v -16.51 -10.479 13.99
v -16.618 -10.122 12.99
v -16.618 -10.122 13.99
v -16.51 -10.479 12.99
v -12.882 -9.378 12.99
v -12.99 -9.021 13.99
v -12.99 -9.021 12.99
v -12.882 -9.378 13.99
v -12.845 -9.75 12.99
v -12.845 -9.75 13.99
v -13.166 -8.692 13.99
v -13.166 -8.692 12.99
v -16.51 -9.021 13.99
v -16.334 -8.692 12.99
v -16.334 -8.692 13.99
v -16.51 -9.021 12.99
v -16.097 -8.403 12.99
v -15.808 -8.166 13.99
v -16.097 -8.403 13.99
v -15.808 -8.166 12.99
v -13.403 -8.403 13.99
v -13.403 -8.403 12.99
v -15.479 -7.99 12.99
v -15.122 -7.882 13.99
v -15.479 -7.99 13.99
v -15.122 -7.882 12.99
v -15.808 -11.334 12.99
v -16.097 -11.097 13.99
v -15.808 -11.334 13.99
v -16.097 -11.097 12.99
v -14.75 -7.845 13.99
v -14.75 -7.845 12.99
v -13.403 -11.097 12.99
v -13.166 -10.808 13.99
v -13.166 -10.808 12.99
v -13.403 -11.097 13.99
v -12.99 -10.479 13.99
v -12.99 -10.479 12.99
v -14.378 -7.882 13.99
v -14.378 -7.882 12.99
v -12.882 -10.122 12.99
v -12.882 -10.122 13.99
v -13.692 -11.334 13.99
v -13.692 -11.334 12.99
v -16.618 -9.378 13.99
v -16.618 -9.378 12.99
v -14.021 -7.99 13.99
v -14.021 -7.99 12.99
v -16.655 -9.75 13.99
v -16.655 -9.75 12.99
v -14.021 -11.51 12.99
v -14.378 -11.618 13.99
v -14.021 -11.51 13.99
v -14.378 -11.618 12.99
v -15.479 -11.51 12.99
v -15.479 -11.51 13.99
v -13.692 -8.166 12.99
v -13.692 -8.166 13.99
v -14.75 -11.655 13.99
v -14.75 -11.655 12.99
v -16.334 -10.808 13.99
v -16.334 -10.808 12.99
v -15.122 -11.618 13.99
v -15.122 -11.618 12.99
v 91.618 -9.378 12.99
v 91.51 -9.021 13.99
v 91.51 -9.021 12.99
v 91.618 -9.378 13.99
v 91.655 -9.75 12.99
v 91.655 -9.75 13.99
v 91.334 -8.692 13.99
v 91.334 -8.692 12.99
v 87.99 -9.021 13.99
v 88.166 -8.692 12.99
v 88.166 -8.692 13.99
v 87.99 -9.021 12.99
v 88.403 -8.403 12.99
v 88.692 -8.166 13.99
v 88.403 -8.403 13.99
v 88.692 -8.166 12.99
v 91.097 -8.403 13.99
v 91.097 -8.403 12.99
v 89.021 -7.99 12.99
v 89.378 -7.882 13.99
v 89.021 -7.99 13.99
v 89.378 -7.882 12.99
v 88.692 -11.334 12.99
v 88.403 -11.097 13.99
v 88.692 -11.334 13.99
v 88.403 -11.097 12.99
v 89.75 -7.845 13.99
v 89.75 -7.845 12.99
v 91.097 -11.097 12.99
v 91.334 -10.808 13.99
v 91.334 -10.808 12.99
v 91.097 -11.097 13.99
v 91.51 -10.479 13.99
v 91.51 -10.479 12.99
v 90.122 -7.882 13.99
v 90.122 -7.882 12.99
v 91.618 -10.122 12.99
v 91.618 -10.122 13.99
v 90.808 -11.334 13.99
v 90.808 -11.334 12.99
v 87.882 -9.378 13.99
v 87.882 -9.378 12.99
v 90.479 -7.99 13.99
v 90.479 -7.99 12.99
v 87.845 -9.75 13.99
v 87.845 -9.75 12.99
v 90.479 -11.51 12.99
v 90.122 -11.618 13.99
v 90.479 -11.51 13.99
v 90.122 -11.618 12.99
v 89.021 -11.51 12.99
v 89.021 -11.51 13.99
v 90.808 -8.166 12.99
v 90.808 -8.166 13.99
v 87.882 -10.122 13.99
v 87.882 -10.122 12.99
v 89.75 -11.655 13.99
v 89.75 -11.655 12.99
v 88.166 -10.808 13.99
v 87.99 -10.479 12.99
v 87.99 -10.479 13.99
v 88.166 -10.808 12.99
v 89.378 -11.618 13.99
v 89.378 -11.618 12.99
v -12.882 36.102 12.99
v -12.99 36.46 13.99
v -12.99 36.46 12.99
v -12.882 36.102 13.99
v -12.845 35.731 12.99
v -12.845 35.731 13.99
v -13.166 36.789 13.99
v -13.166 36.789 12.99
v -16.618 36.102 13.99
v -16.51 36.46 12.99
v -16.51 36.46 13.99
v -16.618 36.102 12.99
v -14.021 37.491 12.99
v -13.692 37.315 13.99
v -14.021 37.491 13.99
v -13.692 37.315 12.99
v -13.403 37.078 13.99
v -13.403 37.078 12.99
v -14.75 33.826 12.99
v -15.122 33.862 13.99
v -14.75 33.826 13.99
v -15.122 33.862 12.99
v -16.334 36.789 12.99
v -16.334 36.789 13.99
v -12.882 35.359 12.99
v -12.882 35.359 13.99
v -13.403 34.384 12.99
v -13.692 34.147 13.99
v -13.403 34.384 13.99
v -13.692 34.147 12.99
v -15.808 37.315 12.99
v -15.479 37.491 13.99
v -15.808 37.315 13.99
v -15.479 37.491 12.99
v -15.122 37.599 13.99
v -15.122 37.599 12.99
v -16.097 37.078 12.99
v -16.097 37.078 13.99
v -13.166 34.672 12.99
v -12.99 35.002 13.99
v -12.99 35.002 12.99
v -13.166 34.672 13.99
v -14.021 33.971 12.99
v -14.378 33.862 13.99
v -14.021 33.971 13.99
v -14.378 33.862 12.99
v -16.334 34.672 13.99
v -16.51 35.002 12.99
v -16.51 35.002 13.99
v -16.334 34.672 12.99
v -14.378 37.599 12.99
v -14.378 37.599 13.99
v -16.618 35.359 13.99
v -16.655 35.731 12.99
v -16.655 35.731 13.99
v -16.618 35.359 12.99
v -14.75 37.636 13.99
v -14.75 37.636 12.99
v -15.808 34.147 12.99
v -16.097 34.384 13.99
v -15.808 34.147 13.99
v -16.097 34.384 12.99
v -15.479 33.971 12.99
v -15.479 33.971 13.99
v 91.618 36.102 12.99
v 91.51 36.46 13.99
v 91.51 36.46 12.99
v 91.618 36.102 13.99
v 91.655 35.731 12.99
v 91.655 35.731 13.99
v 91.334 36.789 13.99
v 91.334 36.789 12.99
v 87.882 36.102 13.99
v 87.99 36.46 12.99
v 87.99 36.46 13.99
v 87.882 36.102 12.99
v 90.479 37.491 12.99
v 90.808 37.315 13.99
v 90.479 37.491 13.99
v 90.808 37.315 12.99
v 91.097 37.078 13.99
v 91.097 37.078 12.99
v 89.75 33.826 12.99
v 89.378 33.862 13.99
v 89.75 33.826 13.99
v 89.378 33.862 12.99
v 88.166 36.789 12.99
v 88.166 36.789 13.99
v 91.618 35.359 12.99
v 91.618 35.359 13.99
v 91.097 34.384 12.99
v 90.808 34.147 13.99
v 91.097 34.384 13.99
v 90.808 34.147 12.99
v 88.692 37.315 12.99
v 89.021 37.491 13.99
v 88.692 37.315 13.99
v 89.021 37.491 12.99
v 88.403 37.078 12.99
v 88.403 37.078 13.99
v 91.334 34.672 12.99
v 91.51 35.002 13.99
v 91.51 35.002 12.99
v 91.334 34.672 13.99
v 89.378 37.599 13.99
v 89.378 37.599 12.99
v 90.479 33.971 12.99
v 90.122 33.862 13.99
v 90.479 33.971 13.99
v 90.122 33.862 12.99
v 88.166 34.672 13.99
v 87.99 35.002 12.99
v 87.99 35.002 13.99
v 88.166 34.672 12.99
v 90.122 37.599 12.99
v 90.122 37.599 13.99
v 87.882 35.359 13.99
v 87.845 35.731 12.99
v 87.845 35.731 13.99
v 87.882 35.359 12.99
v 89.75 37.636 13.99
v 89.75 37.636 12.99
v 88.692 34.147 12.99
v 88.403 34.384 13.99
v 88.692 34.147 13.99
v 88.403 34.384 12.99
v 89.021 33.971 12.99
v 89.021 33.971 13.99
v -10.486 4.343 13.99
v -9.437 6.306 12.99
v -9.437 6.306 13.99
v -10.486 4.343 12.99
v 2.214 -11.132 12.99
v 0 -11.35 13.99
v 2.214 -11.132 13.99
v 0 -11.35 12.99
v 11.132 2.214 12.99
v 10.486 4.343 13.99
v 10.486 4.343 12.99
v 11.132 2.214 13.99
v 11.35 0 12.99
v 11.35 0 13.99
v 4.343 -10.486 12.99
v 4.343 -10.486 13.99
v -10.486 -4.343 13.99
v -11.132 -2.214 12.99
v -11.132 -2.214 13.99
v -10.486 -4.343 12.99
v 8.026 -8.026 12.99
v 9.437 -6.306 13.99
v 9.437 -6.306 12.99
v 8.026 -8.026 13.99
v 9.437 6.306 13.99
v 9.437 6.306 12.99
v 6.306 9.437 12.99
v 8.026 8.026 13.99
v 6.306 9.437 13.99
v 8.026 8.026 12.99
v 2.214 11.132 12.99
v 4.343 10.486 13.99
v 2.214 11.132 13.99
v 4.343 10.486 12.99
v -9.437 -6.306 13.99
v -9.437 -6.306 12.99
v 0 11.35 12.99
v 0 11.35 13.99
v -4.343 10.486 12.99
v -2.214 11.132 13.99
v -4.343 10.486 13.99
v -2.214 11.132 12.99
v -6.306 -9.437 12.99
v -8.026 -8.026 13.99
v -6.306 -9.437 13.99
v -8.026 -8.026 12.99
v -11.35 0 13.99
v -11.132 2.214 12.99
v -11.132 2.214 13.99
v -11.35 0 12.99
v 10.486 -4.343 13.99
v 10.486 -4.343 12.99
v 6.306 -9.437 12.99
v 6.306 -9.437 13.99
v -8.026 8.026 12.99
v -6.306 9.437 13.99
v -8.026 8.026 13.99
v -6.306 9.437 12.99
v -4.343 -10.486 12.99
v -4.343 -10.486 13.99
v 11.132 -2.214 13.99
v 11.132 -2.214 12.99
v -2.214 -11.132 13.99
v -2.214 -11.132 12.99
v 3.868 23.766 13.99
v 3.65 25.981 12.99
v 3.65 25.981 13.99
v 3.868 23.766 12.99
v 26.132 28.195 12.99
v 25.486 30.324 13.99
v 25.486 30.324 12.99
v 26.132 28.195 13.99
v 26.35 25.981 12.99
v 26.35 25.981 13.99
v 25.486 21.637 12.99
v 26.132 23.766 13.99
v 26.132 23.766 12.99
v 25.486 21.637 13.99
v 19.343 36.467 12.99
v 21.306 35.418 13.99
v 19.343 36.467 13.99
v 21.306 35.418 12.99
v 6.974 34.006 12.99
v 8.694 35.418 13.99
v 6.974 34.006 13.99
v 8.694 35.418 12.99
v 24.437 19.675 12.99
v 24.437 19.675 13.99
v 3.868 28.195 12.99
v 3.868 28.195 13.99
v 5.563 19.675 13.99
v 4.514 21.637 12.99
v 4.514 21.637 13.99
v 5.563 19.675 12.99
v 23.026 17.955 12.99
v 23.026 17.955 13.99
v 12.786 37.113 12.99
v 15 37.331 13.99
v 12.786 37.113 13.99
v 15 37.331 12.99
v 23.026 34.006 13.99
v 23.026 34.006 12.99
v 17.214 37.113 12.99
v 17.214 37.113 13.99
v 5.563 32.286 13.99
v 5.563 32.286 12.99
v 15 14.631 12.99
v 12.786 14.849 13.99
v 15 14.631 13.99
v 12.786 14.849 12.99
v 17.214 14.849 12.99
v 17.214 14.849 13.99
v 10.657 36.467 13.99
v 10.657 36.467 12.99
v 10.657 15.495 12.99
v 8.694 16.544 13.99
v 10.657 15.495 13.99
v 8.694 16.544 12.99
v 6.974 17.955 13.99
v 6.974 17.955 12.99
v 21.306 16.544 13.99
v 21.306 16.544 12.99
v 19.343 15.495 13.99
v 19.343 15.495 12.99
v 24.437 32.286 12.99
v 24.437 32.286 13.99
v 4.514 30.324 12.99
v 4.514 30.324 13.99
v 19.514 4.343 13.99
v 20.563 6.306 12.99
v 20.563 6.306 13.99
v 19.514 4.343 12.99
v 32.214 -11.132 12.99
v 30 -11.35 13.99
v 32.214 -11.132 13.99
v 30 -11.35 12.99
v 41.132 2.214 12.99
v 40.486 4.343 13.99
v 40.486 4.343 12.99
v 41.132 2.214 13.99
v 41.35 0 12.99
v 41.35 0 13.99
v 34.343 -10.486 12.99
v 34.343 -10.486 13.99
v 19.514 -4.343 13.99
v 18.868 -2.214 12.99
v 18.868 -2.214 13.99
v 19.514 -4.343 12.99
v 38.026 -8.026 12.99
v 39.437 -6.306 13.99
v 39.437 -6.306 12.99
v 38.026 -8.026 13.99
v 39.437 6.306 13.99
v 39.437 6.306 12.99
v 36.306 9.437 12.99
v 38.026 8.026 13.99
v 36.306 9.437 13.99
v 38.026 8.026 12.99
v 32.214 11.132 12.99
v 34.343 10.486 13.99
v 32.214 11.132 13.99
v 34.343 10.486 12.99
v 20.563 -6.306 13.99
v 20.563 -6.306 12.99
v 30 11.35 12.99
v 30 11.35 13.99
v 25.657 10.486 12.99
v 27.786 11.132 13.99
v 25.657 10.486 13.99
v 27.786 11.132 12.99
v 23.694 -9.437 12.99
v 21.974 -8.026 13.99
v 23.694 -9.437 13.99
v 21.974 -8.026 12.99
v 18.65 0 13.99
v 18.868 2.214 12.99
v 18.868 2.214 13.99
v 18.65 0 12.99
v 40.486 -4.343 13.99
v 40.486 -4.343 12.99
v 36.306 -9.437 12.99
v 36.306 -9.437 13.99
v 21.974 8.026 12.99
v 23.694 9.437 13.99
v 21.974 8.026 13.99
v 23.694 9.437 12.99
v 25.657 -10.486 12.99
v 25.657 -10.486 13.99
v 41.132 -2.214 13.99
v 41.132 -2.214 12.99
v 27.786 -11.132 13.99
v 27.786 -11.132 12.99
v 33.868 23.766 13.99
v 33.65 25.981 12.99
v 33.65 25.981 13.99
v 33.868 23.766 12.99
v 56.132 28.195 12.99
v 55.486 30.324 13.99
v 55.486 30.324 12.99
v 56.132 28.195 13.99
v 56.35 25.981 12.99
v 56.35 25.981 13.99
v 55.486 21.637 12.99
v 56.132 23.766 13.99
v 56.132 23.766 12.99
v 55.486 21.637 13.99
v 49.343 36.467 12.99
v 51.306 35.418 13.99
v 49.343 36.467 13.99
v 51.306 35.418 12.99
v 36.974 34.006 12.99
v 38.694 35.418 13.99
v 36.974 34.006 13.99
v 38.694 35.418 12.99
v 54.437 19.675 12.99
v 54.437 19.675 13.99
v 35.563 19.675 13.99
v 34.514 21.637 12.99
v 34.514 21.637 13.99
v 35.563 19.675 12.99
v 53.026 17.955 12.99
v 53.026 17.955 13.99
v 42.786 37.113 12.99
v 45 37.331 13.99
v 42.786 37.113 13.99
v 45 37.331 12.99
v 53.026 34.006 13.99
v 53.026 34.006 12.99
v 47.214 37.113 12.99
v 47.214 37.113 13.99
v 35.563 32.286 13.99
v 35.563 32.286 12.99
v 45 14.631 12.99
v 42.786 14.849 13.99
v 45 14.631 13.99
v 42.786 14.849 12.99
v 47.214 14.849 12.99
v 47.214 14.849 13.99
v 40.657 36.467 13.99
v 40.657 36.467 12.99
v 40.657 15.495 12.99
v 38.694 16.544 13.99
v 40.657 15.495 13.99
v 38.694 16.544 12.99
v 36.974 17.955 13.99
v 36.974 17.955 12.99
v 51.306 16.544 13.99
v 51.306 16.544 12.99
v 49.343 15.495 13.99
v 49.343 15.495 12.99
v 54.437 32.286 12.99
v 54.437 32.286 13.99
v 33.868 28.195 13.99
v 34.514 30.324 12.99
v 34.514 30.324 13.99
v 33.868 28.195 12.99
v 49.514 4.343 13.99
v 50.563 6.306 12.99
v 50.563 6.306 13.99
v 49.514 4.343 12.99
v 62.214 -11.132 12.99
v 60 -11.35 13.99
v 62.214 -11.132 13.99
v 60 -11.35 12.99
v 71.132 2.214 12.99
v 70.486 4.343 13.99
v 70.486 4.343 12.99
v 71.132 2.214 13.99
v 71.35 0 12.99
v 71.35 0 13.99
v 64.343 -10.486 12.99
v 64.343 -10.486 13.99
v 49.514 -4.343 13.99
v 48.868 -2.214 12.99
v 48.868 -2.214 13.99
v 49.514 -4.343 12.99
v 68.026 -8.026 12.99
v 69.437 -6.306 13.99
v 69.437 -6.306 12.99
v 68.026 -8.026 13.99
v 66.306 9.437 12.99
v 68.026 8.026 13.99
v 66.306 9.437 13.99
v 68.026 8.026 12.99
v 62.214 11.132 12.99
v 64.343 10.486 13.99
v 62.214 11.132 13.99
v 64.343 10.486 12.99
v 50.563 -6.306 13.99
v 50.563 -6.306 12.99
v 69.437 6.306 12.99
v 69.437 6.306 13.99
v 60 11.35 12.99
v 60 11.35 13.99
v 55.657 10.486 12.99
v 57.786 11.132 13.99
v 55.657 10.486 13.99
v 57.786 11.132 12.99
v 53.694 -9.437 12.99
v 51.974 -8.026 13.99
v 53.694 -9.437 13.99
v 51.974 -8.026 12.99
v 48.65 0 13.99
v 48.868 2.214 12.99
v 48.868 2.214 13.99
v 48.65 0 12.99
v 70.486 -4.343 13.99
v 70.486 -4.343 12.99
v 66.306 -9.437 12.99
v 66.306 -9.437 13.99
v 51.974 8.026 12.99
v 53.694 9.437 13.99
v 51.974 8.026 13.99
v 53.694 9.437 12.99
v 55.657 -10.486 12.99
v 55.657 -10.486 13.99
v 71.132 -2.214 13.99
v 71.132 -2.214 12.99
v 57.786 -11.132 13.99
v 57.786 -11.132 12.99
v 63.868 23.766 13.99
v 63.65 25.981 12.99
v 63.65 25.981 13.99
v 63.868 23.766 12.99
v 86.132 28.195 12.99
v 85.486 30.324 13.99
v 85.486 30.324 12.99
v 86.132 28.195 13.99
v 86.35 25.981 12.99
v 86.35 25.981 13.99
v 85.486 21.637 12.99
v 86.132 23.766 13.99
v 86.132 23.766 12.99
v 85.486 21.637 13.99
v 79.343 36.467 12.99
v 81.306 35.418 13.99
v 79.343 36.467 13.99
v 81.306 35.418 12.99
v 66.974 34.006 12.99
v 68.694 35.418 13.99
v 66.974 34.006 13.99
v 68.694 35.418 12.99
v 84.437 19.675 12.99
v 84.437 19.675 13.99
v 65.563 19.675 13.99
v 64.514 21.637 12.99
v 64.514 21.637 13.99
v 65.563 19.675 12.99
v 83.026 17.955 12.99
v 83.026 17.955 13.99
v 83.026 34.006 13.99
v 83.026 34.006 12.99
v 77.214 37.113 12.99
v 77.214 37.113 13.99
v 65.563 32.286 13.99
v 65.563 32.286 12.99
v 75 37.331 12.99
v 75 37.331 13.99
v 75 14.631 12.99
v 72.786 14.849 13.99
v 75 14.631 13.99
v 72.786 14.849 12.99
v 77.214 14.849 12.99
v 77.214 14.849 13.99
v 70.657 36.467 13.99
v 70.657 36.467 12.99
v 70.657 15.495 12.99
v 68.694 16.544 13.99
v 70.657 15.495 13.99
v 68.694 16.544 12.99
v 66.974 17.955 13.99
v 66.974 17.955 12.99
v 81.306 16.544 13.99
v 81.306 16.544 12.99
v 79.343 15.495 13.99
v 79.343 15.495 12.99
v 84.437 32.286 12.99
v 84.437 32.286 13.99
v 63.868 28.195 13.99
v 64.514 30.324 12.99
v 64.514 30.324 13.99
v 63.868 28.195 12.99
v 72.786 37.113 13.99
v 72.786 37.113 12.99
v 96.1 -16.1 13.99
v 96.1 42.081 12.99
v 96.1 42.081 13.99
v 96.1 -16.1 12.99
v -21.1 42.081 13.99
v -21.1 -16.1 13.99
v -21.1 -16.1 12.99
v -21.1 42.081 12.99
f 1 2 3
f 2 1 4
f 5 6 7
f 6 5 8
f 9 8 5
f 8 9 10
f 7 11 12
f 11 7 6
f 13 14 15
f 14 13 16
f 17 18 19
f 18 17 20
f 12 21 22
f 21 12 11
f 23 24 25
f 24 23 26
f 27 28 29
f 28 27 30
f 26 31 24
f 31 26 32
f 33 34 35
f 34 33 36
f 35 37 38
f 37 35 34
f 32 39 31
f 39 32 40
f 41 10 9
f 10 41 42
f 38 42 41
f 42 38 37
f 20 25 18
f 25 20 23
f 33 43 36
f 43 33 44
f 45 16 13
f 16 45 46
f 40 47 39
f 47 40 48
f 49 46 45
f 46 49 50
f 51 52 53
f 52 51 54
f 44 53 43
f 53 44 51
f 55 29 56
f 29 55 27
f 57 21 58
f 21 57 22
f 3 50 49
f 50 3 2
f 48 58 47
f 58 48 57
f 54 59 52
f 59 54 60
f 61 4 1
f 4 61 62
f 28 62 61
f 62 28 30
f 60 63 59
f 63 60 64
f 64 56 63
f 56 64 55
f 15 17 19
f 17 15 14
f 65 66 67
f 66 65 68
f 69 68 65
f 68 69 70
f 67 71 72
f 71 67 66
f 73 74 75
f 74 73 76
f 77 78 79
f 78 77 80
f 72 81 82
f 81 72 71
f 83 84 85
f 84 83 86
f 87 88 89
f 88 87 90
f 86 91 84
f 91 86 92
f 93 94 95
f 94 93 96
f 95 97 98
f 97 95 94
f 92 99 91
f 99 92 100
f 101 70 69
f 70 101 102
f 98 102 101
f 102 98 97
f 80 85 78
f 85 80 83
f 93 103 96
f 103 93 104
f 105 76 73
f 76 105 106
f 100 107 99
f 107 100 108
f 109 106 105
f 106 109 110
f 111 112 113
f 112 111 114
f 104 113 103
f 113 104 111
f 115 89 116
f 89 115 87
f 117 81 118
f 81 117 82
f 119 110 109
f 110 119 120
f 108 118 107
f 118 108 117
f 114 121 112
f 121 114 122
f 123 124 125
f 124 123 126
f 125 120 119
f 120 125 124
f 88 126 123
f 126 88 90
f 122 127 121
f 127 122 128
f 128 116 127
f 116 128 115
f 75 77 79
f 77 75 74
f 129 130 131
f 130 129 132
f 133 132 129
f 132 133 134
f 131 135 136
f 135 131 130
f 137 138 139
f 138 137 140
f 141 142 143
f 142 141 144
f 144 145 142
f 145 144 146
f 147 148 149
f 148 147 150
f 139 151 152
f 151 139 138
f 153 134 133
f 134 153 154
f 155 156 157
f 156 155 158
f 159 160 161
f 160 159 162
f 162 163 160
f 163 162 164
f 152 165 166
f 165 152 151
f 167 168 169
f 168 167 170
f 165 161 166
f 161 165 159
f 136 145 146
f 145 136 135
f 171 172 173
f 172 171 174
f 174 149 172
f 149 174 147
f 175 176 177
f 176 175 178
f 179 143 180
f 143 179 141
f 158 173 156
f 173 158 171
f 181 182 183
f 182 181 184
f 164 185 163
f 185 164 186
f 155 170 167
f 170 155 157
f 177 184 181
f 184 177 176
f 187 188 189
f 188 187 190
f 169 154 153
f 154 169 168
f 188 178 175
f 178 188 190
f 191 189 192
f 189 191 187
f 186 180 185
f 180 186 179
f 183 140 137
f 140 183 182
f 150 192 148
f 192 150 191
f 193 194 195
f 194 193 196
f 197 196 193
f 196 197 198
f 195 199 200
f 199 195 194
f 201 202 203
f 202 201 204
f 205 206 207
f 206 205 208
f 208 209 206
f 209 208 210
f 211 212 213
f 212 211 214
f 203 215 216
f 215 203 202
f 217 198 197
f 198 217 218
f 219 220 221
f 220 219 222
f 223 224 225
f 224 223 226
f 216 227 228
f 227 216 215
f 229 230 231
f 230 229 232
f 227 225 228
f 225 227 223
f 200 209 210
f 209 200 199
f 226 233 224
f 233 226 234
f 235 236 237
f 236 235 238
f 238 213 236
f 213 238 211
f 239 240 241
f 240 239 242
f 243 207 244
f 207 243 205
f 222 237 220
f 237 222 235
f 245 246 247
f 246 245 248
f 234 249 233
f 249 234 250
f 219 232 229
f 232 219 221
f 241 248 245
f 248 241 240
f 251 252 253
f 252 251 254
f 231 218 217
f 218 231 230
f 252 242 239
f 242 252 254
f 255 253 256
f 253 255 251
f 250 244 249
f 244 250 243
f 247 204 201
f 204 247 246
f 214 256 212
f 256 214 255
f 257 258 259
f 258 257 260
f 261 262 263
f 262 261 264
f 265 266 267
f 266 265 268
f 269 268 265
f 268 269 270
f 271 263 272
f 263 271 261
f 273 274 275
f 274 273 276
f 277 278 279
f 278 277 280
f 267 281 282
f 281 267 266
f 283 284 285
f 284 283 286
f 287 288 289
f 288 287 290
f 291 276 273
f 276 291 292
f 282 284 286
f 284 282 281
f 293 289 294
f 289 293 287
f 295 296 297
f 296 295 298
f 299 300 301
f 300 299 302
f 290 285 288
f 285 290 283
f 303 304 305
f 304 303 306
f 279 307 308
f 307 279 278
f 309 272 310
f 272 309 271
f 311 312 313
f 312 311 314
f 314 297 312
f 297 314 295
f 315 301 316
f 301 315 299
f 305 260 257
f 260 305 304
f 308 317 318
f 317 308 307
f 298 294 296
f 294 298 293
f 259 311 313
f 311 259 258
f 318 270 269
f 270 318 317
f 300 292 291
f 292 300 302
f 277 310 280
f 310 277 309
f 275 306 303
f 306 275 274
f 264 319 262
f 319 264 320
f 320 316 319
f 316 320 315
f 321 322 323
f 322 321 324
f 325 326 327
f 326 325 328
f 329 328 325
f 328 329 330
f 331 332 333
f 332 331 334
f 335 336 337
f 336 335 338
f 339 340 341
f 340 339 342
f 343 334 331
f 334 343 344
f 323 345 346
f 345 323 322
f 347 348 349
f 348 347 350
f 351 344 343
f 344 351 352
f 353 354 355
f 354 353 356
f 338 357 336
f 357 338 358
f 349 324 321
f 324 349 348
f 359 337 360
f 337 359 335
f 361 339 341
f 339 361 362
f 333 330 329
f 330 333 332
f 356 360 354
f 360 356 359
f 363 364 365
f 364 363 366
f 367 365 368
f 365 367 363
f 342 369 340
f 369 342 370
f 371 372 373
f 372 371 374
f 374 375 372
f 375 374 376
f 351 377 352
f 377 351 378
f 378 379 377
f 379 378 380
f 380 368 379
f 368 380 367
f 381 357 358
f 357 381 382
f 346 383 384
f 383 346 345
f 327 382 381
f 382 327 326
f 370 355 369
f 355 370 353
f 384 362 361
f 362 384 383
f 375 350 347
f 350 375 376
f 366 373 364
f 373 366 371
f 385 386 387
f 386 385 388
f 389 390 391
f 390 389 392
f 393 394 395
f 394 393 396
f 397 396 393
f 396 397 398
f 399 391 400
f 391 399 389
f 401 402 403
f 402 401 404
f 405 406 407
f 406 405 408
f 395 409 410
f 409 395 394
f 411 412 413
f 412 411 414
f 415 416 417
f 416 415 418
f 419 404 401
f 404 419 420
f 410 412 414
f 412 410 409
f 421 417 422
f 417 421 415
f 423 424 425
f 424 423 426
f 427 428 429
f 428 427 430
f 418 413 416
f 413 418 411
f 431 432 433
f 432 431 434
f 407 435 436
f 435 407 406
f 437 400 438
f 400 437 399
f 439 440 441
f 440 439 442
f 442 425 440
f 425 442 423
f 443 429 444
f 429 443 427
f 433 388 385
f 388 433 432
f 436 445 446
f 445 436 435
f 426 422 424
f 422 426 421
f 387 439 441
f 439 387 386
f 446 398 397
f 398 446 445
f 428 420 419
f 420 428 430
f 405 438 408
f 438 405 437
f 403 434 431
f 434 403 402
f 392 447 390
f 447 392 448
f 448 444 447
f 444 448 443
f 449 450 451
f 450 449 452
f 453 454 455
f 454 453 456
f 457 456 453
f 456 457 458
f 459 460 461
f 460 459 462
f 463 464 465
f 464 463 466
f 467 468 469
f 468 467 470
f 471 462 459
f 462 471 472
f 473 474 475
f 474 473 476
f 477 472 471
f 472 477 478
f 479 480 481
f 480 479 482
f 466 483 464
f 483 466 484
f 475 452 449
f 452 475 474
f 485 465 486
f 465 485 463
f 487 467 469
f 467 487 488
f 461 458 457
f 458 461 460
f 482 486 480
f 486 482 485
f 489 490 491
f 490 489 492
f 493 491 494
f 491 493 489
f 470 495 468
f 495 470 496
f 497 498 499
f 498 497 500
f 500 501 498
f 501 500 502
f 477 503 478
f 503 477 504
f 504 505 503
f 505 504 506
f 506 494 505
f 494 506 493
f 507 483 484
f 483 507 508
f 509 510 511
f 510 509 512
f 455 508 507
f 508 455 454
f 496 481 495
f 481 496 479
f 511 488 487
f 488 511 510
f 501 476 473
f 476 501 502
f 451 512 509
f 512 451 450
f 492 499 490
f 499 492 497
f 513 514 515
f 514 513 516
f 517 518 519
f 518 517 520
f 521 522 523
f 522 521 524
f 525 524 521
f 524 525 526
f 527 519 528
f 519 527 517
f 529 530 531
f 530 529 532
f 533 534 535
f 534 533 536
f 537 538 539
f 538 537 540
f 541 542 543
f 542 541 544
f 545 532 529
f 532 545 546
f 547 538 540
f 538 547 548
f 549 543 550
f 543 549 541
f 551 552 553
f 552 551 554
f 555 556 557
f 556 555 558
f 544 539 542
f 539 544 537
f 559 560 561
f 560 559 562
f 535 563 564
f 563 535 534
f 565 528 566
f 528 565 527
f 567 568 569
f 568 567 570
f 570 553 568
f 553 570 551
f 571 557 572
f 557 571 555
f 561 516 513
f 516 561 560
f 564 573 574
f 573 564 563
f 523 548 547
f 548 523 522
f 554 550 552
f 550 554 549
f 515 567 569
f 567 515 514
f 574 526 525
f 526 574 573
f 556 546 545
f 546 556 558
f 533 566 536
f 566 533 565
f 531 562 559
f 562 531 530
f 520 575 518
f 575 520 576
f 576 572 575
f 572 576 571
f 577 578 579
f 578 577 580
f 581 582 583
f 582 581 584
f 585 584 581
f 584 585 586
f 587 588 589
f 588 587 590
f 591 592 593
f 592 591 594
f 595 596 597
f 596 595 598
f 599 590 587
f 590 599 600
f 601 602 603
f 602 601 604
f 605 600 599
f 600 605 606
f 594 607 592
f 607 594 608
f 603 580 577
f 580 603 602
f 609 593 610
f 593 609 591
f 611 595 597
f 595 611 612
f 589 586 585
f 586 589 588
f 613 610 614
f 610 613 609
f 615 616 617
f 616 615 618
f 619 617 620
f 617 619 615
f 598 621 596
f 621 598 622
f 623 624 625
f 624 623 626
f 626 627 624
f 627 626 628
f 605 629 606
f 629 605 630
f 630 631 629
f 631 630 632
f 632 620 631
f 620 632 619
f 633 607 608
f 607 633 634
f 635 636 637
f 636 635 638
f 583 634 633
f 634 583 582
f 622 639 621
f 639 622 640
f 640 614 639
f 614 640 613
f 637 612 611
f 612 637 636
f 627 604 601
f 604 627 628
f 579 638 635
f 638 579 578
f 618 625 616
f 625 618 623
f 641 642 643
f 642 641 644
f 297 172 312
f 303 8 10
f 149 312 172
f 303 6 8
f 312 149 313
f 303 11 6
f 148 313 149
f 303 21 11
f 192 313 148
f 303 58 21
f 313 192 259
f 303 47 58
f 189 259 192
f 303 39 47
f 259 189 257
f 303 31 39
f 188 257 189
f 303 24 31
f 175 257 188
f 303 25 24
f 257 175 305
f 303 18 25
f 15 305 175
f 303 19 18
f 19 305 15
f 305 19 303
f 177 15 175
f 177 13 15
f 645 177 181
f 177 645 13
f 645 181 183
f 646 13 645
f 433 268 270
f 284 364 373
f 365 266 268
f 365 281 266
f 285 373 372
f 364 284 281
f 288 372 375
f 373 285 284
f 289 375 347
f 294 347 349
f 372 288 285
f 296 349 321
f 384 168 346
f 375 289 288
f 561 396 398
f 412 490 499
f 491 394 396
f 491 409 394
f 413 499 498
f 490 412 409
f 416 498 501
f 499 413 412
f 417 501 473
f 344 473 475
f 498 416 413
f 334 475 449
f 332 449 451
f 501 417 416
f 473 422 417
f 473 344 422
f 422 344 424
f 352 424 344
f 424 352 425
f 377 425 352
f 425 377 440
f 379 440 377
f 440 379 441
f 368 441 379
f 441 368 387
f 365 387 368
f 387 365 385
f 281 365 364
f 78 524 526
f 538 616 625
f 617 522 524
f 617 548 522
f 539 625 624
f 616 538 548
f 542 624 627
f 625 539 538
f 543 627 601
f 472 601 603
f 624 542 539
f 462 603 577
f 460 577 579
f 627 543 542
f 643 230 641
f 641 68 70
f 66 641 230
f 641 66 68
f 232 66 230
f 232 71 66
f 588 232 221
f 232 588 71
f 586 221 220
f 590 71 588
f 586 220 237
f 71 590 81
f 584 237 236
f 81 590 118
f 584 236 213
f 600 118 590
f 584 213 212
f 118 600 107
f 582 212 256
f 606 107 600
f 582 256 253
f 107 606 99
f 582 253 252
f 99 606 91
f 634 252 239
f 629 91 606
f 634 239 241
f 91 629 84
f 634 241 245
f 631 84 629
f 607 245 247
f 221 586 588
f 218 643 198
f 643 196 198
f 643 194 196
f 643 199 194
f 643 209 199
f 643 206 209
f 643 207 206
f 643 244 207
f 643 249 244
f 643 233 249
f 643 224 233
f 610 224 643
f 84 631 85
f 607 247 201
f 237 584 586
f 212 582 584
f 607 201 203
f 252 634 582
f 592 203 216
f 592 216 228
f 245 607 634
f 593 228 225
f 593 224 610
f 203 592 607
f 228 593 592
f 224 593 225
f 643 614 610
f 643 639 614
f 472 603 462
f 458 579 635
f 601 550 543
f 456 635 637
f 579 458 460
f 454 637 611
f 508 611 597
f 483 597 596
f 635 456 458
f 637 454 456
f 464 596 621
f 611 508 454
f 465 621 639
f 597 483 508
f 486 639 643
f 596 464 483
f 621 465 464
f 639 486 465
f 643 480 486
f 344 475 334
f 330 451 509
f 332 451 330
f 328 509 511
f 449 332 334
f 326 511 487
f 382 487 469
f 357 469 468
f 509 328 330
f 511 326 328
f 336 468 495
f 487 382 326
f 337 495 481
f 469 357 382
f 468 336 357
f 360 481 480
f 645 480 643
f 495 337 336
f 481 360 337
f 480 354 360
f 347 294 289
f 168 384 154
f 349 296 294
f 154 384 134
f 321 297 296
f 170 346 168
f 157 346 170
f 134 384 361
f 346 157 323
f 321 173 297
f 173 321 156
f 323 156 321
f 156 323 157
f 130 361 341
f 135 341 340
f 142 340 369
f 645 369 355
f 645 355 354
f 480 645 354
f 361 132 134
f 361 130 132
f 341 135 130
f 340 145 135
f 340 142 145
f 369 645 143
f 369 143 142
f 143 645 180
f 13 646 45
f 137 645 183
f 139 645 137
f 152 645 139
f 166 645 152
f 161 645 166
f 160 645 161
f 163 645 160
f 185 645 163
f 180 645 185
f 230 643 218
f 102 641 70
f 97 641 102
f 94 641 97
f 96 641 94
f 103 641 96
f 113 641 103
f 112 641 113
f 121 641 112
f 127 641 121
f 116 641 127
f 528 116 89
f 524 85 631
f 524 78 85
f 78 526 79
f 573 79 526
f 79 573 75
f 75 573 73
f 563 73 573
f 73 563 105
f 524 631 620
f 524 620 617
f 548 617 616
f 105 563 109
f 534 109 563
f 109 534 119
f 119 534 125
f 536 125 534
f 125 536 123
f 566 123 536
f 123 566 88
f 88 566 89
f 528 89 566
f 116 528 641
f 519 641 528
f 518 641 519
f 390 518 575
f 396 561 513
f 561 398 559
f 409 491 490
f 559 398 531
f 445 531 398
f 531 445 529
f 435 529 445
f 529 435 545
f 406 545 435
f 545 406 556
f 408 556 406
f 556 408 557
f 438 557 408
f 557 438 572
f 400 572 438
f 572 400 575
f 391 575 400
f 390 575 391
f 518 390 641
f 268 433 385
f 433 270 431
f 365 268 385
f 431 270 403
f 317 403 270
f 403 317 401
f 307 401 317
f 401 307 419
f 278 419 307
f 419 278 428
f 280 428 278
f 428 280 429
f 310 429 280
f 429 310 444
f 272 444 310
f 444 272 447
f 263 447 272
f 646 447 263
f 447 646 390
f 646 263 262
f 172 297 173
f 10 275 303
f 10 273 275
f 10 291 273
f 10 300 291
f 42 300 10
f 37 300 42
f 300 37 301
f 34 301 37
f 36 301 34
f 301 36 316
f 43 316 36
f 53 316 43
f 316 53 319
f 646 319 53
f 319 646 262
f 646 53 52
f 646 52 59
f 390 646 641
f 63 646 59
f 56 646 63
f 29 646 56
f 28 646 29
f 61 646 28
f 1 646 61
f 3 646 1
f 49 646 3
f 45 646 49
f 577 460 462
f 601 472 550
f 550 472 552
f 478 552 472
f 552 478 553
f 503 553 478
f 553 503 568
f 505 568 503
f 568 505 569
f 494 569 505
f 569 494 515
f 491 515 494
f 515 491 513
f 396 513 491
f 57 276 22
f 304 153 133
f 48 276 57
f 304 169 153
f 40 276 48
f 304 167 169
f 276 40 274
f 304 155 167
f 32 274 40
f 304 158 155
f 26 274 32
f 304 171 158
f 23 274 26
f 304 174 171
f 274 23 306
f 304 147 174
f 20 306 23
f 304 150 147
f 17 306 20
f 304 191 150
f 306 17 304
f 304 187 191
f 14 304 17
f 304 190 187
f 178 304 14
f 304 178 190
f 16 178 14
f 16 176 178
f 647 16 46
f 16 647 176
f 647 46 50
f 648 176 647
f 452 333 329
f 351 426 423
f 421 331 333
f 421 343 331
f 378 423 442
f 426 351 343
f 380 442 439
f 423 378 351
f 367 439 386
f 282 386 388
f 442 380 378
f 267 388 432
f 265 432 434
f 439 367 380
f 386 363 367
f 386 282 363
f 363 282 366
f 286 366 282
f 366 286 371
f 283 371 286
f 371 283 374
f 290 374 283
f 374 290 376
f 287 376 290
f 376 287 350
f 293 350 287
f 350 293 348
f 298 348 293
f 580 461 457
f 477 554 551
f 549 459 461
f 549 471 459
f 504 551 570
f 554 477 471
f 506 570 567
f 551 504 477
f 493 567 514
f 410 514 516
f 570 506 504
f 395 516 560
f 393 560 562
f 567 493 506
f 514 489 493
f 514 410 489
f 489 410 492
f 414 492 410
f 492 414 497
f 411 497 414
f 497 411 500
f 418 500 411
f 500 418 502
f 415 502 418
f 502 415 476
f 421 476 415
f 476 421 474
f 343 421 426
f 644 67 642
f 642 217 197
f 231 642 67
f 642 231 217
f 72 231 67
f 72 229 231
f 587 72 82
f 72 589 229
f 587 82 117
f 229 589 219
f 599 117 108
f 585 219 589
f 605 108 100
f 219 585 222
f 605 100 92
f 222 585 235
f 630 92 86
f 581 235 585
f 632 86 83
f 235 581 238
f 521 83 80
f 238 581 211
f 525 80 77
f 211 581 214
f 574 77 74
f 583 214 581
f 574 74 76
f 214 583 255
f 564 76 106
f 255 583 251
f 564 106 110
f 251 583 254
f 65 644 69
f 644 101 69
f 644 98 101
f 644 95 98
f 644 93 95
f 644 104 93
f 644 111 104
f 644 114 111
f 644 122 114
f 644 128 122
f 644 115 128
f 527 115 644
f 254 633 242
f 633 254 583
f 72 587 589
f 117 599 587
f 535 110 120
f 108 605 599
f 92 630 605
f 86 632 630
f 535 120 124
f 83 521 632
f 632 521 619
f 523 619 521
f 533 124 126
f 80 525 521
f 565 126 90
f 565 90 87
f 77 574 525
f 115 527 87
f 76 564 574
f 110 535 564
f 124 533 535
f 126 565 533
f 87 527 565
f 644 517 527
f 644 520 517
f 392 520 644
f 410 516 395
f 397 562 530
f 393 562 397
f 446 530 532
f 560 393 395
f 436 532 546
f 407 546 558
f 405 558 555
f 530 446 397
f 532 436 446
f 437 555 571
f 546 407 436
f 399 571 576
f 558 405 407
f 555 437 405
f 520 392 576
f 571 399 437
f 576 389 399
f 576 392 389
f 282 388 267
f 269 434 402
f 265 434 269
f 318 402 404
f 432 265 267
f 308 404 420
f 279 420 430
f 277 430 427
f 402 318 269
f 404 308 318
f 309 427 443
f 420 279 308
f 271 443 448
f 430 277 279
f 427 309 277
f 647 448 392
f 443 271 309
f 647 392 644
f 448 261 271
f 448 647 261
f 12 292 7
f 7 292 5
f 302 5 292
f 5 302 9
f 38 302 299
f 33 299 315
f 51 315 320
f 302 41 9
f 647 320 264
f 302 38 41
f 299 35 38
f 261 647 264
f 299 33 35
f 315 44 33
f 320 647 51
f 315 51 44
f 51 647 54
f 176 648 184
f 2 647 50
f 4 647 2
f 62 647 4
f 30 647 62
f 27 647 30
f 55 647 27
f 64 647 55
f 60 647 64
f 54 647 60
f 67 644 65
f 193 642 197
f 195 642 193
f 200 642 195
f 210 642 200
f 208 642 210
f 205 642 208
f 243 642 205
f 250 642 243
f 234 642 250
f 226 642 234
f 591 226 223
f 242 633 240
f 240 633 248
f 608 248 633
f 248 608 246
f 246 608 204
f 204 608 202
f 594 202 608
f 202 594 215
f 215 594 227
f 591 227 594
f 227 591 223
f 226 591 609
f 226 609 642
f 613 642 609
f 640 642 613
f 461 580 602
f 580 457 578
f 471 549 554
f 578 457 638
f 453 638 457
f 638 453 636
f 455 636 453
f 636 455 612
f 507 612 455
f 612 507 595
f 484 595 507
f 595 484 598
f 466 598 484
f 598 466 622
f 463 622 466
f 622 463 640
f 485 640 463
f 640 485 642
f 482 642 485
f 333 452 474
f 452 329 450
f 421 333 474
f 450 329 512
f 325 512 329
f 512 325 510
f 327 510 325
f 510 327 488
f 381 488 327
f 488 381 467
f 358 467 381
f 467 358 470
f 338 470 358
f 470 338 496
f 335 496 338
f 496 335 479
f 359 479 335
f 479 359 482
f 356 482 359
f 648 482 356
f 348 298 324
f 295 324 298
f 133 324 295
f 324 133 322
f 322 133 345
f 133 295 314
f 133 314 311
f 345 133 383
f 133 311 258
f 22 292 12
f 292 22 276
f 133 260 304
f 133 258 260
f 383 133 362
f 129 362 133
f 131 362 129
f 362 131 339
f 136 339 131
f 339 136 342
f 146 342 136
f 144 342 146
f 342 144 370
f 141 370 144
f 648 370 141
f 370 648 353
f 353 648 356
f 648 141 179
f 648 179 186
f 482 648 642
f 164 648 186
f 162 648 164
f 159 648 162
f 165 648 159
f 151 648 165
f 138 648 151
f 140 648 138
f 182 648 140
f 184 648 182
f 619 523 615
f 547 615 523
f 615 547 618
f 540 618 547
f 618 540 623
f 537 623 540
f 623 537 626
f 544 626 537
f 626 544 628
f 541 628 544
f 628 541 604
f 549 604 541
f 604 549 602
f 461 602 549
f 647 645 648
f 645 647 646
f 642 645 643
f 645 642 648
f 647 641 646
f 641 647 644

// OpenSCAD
//
// holder for components in Cockroft-Walton multipler
//

mm = 25.4;
e = 0.1;
$fn = 32;

s32 = sqrt(3)/2;

cap_d = 22.2;
cap_spc = 0.25;
hole_d = cap_d+2*cap_spc;

mtg_hole_d = 0.15*mm;
mtg_hole_off = 0.25*mm;

cap_dx = 30;
cap_h = cap_dx*s32;

nstage = 3;

module cap( dia) {
     color("#404040")
	  cylinder( h=cap_h, d=dia);
}


module cyl_array( dia) {
     for( i=[0:nstage-1] ) {
	  translate( [cap_dx*i, 0, 0]) {
	       cap( dia);
	       translate( [cap_dx/2, cap_h , 0]) cap( dia);
	  }
     }
}

module m_hole_at( x, y, d) {
     translate( [x, y, 0])
	  cylinder( h=cap_h, d=mtg_hole_d);
}


bbx = 10;			/* board border in x */
bby = 5;			/* board border in y */

board_x = 2*bbx+cap_d + (nstage-0.5)*cap_dx;
board_y = 2*bby+cap_d+cap_h;
board_thk = 1.0;

module board() {

     difference() {
	  translate( [-cap_d/2-bbx, -cap_d/2-bby, cap_h/2]) {
	       cube( [board_x, board_y, board_thk]);
	  }
	  translate( [-cap_d/2-bbx, -cap_d/2-bby, -e]) {
	       m_hole_at( mtg_hole_off, mtg_hole_off, mtg_hole_d);
	       m_hole_at( board_x-mtg_hole_off, mtg_hole_off, mtg_hole_d);
	       m_hole_at( mtg_hole_off, board_y-mtg_hole_off, mtg_hole_d);
	       m_hole_at( board_x-mtg_hole_off, board_y-mtg_hole_off, mtg_hole_d);
	  }
	  cyl_array( hole_d);
     }
}

// cyl_array( cap_d);
//projection() {
     board();
//}
